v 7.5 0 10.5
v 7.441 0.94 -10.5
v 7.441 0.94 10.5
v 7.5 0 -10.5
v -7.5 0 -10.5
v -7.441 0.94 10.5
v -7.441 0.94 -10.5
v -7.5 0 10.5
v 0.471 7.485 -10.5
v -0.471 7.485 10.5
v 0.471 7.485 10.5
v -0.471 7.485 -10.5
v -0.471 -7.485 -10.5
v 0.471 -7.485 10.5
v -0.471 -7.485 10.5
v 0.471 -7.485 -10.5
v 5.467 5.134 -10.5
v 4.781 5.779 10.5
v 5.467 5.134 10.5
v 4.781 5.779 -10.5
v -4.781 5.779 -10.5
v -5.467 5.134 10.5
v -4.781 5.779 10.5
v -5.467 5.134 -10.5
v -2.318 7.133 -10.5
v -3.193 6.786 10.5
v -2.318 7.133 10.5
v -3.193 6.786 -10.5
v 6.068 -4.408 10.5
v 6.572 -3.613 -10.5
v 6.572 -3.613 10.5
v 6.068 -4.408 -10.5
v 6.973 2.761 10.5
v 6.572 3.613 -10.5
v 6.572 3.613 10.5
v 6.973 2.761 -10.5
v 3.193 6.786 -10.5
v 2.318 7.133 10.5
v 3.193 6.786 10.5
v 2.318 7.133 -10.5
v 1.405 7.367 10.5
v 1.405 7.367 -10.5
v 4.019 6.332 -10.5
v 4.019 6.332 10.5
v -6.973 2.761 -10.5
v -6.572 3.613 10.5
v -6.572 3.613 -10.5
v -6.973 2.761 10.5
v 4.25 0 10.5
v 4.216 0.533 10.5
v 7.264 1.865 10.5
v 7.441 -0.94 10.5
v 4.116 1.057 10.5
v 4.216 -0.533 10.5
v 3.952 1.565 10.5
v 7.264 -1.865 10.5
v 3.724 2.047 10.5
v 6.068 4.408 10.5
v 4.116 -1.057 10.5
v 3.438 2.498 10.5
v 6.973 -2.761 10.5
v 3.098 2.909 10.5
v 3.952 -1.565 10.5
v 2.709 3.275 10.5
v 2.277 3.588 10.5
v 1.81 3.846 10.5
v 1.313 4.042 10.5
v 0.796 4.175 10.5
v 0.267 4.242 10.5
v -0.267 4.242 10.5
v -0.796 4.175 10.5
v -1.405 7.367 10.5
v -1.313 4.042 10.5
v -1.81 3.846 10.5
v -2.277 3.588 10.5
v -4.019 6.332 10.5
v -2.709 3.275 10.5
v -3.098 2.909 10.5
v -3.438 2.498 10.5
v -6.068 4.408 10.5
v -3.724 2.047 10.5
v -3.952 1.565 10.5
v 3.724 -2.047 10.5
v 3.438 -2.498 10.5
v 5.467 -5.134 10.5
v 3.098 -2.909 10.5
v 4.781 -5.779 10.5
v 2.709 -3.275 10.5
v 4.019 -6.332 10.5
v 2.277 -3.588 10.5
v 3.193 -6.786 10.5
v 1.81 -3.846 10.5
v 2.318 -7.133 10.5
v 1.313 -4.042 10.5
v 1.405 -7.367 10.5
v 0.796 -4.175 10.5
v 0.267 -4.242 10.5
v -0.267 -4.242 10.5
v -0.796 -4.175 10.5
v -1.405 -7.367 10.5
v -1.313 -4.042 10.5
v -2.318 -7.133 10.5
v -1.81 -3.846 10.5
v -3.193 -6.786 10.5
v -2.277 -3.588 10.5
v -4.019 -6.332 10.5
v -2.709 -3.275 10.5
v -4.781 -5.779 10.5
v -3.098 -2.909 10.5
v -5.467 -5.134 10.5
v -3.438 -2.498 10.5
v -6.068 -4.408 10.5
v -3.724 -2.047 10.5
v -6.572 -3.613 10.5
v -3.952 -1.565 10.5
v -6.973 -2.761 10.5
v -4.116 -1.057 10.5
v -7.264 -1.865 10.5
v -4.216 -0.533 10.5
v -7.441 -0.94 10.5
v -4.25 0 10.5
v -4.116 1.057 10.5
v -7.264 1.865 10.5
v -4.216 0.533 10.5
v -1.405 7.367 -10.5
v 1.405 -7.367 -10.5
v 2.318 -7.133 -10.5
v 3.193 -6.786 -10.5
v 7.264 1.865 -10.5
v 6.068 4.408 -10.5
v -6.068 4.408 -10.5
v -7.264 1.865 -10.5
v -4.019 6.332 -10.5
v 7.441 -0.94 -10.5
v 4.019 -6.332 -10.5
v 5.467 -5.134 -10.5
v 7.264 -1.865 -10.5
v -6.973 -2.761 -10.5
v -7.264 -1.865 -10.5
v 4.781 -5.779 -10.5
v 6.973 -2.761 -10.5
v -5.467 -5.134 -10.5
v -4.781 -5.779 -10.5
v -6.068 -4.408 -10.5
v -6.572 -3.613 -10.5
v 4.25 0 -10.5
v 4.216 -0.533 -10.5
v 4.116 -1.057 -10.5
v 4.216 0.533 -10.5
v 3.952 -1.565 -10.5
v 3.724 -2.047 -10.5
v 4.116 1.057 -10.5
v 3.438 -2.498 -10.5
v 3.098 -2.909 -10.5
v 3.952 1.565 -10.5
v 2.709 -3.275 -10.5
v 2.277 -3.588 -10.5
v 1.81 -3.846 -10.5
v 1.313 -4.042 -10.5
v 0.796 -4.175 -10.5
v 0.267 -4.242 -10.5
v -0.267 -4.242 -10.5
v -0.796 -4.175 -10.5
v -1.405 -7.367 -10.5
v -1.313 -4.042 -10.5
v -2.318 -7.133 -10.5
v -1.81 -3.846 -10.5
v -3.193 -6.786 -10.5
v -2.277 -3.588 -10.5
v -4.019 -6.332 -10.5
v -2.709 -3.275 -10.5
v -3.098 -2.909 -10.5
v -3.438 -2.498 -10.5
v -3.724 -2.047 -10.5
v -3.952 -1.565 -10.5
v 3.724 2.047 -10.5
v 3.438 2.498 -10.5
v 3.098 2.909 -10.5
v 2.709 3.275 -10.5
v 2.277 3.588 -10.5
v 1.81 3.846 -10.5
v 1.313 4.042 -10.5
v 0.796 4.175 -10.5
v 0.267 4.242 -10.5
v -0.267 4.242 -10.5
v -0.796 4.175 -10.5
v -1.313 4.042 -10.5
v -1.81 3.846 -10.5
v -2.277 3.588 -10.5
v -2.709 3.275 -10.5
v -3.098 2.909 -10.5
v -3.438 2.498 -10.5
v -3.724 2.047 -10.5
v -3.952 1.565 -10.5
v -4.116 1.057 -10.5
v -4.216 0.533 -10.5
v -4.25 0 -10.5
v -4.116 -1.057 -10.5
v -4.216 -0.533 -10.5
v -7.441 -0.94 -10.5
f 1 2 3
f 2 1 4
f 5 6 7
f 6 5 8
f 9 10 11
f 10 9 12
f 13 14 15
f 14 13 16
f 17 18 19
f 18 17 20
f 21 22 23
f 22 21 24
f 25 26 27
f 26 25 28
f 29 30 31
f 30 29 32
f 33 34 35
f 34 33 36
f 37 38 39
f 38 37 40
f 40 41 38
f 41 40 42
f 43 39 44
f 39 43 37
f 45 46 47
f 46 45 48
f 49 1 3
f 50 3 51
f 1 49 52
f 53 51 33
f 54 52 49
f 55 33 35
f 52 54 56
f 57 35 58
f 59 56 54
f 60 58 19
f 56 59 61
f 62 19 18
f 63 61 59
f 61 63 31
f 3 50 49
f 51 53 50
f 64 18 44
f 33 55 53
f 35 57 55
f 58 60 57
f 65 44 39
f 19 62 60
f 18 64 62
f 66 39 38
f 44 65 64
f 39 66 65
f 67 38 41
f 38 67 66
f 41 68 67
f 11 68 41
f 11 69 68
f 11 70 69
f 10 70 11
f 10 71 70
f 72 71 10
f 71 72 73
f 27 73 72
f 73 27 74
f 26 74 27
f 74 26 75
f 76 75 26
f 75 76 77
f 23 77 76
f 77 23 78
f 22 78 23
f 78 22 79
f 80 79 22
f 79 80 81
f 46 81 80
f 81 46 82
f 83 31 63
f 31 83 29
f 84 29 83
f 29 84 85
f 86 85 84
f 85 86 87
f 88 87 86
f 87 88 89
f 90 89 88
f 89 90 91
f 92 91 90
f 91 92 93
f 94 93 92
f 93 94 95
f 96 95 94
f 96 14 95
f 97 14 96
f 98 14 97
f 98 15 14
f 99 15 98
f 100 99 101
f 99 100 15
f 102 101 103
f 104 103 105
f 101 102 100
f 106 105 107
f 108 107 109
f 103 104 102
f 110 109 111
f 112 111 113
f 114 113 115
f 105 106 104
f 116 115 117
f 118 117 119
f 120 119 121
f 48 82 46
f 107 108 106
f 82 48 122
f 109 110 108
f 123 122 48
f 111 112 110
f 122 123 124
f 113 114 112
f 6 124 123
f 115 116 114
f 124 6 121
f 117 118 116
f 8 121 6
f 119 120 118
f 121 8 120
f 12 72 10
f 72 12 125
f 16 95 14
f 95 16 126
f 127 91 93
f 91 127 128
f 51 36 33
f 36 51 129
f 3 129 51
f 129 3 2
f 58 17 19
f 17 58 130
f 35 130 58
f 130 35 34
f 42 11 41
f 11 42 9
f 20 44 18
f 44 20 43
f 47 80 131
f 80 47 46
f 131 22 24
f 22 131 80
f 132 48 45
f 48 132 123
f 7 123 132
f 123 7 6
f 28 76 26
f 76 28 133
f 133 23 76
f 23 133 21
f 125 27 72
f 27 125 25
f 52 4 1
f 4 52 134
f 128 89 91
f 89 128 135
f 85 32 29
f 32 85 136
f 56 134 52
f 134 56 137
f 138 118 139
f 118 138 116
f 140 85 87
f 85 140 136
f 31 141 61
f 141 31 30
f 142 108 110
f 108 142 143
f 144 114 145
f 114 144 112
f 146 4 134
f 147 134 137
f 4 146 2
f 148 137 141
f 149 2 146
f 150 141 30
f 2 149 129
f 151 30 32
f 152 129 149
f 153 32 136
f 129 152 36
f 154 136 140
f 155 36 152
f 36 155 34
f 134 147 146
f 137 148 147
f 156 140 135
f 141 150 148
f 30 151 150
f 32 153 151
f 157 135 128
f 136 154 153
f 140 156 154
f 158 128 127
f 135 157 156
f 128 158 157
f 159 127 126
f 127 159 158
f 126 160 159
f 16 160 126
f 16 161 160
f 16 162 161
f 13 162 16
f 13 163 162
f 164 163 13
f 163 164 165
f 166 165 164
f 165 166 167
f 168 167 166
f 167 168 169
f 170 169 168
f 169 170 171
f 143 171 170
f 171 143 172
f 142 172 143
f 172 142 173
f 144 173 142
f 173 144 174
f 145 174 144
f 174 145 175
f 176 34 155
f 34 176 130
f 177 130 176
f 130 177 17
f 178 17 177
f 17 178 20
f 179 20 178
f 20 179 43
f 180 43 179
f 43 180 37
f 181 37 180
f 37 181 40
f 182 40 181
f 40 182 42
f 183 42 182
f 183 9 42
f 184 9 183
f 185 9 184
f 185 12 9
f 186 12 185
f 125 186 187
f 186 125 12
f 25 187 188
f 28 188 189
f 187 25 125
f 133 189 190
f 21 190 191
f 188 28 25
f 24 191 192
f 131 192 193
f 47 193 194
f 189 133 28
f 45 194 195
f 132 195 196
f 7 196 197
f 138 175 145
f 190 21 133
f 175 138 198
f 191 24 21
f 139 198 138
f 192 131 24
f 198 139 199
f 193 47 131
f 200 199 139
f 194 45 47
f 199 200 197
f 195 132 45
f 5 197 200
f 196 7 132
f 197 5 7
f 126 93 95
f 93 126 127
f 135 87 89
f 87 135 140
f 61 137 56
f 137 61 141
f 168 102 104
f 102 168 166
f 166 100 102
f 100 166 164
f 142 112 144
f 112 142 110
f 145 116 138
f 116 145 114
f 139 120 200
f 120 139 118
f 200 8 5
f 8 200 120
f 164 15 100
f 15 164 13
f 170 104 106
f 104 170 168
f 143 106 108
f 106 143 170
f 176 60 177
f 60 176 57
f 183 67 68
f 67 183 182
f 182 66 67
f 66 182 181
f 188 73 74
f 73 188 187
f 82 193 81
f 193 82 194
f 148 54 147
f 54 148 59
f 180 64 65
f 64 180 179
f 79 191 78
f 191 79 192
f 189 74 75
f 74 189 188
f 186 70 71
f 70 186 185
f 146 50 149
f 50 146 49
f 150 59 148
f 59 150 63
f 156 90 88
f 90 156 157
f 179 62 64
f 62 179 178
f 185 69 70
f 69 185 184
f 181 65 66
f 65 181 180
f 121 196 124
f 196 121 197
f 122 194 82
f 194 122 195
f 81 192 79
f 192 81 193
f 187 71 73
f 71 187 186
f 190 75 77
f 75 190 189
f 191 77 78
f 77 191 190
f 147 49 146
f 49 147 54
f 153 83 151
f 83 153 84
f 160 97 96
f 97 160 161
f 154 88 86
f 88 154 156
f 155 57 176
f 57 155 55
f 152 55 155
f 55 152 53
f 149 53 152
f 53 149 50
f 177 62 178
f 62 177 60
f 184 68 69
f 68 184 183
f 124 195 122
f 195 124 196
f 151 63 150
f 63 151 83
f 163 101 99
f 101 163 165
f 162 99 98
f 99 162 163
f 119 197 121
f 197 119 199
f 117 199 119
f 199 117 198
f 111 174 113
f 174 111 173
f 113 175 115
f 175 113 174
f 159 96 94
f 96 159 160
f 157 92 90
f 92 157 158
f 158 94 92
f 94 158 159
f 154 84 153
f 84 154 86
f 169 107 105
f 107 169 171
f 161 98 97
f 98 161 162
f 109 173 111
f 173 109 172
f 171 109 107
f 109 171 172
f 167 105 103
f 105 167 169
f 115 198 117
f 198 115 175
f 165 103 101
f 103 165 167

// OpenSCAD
$fn = 50;


difference() {
	union() {
		translate(v = [0, 0, -10.5000000000]) {
			cylinder(h = 21, r = 7.5000000000);
		}
	}
	union() {
		translate(v = [0, 0, -100.0000000000]) {
			cylinder(h = 200, r = 4.2500000000);
		}
	}
}
